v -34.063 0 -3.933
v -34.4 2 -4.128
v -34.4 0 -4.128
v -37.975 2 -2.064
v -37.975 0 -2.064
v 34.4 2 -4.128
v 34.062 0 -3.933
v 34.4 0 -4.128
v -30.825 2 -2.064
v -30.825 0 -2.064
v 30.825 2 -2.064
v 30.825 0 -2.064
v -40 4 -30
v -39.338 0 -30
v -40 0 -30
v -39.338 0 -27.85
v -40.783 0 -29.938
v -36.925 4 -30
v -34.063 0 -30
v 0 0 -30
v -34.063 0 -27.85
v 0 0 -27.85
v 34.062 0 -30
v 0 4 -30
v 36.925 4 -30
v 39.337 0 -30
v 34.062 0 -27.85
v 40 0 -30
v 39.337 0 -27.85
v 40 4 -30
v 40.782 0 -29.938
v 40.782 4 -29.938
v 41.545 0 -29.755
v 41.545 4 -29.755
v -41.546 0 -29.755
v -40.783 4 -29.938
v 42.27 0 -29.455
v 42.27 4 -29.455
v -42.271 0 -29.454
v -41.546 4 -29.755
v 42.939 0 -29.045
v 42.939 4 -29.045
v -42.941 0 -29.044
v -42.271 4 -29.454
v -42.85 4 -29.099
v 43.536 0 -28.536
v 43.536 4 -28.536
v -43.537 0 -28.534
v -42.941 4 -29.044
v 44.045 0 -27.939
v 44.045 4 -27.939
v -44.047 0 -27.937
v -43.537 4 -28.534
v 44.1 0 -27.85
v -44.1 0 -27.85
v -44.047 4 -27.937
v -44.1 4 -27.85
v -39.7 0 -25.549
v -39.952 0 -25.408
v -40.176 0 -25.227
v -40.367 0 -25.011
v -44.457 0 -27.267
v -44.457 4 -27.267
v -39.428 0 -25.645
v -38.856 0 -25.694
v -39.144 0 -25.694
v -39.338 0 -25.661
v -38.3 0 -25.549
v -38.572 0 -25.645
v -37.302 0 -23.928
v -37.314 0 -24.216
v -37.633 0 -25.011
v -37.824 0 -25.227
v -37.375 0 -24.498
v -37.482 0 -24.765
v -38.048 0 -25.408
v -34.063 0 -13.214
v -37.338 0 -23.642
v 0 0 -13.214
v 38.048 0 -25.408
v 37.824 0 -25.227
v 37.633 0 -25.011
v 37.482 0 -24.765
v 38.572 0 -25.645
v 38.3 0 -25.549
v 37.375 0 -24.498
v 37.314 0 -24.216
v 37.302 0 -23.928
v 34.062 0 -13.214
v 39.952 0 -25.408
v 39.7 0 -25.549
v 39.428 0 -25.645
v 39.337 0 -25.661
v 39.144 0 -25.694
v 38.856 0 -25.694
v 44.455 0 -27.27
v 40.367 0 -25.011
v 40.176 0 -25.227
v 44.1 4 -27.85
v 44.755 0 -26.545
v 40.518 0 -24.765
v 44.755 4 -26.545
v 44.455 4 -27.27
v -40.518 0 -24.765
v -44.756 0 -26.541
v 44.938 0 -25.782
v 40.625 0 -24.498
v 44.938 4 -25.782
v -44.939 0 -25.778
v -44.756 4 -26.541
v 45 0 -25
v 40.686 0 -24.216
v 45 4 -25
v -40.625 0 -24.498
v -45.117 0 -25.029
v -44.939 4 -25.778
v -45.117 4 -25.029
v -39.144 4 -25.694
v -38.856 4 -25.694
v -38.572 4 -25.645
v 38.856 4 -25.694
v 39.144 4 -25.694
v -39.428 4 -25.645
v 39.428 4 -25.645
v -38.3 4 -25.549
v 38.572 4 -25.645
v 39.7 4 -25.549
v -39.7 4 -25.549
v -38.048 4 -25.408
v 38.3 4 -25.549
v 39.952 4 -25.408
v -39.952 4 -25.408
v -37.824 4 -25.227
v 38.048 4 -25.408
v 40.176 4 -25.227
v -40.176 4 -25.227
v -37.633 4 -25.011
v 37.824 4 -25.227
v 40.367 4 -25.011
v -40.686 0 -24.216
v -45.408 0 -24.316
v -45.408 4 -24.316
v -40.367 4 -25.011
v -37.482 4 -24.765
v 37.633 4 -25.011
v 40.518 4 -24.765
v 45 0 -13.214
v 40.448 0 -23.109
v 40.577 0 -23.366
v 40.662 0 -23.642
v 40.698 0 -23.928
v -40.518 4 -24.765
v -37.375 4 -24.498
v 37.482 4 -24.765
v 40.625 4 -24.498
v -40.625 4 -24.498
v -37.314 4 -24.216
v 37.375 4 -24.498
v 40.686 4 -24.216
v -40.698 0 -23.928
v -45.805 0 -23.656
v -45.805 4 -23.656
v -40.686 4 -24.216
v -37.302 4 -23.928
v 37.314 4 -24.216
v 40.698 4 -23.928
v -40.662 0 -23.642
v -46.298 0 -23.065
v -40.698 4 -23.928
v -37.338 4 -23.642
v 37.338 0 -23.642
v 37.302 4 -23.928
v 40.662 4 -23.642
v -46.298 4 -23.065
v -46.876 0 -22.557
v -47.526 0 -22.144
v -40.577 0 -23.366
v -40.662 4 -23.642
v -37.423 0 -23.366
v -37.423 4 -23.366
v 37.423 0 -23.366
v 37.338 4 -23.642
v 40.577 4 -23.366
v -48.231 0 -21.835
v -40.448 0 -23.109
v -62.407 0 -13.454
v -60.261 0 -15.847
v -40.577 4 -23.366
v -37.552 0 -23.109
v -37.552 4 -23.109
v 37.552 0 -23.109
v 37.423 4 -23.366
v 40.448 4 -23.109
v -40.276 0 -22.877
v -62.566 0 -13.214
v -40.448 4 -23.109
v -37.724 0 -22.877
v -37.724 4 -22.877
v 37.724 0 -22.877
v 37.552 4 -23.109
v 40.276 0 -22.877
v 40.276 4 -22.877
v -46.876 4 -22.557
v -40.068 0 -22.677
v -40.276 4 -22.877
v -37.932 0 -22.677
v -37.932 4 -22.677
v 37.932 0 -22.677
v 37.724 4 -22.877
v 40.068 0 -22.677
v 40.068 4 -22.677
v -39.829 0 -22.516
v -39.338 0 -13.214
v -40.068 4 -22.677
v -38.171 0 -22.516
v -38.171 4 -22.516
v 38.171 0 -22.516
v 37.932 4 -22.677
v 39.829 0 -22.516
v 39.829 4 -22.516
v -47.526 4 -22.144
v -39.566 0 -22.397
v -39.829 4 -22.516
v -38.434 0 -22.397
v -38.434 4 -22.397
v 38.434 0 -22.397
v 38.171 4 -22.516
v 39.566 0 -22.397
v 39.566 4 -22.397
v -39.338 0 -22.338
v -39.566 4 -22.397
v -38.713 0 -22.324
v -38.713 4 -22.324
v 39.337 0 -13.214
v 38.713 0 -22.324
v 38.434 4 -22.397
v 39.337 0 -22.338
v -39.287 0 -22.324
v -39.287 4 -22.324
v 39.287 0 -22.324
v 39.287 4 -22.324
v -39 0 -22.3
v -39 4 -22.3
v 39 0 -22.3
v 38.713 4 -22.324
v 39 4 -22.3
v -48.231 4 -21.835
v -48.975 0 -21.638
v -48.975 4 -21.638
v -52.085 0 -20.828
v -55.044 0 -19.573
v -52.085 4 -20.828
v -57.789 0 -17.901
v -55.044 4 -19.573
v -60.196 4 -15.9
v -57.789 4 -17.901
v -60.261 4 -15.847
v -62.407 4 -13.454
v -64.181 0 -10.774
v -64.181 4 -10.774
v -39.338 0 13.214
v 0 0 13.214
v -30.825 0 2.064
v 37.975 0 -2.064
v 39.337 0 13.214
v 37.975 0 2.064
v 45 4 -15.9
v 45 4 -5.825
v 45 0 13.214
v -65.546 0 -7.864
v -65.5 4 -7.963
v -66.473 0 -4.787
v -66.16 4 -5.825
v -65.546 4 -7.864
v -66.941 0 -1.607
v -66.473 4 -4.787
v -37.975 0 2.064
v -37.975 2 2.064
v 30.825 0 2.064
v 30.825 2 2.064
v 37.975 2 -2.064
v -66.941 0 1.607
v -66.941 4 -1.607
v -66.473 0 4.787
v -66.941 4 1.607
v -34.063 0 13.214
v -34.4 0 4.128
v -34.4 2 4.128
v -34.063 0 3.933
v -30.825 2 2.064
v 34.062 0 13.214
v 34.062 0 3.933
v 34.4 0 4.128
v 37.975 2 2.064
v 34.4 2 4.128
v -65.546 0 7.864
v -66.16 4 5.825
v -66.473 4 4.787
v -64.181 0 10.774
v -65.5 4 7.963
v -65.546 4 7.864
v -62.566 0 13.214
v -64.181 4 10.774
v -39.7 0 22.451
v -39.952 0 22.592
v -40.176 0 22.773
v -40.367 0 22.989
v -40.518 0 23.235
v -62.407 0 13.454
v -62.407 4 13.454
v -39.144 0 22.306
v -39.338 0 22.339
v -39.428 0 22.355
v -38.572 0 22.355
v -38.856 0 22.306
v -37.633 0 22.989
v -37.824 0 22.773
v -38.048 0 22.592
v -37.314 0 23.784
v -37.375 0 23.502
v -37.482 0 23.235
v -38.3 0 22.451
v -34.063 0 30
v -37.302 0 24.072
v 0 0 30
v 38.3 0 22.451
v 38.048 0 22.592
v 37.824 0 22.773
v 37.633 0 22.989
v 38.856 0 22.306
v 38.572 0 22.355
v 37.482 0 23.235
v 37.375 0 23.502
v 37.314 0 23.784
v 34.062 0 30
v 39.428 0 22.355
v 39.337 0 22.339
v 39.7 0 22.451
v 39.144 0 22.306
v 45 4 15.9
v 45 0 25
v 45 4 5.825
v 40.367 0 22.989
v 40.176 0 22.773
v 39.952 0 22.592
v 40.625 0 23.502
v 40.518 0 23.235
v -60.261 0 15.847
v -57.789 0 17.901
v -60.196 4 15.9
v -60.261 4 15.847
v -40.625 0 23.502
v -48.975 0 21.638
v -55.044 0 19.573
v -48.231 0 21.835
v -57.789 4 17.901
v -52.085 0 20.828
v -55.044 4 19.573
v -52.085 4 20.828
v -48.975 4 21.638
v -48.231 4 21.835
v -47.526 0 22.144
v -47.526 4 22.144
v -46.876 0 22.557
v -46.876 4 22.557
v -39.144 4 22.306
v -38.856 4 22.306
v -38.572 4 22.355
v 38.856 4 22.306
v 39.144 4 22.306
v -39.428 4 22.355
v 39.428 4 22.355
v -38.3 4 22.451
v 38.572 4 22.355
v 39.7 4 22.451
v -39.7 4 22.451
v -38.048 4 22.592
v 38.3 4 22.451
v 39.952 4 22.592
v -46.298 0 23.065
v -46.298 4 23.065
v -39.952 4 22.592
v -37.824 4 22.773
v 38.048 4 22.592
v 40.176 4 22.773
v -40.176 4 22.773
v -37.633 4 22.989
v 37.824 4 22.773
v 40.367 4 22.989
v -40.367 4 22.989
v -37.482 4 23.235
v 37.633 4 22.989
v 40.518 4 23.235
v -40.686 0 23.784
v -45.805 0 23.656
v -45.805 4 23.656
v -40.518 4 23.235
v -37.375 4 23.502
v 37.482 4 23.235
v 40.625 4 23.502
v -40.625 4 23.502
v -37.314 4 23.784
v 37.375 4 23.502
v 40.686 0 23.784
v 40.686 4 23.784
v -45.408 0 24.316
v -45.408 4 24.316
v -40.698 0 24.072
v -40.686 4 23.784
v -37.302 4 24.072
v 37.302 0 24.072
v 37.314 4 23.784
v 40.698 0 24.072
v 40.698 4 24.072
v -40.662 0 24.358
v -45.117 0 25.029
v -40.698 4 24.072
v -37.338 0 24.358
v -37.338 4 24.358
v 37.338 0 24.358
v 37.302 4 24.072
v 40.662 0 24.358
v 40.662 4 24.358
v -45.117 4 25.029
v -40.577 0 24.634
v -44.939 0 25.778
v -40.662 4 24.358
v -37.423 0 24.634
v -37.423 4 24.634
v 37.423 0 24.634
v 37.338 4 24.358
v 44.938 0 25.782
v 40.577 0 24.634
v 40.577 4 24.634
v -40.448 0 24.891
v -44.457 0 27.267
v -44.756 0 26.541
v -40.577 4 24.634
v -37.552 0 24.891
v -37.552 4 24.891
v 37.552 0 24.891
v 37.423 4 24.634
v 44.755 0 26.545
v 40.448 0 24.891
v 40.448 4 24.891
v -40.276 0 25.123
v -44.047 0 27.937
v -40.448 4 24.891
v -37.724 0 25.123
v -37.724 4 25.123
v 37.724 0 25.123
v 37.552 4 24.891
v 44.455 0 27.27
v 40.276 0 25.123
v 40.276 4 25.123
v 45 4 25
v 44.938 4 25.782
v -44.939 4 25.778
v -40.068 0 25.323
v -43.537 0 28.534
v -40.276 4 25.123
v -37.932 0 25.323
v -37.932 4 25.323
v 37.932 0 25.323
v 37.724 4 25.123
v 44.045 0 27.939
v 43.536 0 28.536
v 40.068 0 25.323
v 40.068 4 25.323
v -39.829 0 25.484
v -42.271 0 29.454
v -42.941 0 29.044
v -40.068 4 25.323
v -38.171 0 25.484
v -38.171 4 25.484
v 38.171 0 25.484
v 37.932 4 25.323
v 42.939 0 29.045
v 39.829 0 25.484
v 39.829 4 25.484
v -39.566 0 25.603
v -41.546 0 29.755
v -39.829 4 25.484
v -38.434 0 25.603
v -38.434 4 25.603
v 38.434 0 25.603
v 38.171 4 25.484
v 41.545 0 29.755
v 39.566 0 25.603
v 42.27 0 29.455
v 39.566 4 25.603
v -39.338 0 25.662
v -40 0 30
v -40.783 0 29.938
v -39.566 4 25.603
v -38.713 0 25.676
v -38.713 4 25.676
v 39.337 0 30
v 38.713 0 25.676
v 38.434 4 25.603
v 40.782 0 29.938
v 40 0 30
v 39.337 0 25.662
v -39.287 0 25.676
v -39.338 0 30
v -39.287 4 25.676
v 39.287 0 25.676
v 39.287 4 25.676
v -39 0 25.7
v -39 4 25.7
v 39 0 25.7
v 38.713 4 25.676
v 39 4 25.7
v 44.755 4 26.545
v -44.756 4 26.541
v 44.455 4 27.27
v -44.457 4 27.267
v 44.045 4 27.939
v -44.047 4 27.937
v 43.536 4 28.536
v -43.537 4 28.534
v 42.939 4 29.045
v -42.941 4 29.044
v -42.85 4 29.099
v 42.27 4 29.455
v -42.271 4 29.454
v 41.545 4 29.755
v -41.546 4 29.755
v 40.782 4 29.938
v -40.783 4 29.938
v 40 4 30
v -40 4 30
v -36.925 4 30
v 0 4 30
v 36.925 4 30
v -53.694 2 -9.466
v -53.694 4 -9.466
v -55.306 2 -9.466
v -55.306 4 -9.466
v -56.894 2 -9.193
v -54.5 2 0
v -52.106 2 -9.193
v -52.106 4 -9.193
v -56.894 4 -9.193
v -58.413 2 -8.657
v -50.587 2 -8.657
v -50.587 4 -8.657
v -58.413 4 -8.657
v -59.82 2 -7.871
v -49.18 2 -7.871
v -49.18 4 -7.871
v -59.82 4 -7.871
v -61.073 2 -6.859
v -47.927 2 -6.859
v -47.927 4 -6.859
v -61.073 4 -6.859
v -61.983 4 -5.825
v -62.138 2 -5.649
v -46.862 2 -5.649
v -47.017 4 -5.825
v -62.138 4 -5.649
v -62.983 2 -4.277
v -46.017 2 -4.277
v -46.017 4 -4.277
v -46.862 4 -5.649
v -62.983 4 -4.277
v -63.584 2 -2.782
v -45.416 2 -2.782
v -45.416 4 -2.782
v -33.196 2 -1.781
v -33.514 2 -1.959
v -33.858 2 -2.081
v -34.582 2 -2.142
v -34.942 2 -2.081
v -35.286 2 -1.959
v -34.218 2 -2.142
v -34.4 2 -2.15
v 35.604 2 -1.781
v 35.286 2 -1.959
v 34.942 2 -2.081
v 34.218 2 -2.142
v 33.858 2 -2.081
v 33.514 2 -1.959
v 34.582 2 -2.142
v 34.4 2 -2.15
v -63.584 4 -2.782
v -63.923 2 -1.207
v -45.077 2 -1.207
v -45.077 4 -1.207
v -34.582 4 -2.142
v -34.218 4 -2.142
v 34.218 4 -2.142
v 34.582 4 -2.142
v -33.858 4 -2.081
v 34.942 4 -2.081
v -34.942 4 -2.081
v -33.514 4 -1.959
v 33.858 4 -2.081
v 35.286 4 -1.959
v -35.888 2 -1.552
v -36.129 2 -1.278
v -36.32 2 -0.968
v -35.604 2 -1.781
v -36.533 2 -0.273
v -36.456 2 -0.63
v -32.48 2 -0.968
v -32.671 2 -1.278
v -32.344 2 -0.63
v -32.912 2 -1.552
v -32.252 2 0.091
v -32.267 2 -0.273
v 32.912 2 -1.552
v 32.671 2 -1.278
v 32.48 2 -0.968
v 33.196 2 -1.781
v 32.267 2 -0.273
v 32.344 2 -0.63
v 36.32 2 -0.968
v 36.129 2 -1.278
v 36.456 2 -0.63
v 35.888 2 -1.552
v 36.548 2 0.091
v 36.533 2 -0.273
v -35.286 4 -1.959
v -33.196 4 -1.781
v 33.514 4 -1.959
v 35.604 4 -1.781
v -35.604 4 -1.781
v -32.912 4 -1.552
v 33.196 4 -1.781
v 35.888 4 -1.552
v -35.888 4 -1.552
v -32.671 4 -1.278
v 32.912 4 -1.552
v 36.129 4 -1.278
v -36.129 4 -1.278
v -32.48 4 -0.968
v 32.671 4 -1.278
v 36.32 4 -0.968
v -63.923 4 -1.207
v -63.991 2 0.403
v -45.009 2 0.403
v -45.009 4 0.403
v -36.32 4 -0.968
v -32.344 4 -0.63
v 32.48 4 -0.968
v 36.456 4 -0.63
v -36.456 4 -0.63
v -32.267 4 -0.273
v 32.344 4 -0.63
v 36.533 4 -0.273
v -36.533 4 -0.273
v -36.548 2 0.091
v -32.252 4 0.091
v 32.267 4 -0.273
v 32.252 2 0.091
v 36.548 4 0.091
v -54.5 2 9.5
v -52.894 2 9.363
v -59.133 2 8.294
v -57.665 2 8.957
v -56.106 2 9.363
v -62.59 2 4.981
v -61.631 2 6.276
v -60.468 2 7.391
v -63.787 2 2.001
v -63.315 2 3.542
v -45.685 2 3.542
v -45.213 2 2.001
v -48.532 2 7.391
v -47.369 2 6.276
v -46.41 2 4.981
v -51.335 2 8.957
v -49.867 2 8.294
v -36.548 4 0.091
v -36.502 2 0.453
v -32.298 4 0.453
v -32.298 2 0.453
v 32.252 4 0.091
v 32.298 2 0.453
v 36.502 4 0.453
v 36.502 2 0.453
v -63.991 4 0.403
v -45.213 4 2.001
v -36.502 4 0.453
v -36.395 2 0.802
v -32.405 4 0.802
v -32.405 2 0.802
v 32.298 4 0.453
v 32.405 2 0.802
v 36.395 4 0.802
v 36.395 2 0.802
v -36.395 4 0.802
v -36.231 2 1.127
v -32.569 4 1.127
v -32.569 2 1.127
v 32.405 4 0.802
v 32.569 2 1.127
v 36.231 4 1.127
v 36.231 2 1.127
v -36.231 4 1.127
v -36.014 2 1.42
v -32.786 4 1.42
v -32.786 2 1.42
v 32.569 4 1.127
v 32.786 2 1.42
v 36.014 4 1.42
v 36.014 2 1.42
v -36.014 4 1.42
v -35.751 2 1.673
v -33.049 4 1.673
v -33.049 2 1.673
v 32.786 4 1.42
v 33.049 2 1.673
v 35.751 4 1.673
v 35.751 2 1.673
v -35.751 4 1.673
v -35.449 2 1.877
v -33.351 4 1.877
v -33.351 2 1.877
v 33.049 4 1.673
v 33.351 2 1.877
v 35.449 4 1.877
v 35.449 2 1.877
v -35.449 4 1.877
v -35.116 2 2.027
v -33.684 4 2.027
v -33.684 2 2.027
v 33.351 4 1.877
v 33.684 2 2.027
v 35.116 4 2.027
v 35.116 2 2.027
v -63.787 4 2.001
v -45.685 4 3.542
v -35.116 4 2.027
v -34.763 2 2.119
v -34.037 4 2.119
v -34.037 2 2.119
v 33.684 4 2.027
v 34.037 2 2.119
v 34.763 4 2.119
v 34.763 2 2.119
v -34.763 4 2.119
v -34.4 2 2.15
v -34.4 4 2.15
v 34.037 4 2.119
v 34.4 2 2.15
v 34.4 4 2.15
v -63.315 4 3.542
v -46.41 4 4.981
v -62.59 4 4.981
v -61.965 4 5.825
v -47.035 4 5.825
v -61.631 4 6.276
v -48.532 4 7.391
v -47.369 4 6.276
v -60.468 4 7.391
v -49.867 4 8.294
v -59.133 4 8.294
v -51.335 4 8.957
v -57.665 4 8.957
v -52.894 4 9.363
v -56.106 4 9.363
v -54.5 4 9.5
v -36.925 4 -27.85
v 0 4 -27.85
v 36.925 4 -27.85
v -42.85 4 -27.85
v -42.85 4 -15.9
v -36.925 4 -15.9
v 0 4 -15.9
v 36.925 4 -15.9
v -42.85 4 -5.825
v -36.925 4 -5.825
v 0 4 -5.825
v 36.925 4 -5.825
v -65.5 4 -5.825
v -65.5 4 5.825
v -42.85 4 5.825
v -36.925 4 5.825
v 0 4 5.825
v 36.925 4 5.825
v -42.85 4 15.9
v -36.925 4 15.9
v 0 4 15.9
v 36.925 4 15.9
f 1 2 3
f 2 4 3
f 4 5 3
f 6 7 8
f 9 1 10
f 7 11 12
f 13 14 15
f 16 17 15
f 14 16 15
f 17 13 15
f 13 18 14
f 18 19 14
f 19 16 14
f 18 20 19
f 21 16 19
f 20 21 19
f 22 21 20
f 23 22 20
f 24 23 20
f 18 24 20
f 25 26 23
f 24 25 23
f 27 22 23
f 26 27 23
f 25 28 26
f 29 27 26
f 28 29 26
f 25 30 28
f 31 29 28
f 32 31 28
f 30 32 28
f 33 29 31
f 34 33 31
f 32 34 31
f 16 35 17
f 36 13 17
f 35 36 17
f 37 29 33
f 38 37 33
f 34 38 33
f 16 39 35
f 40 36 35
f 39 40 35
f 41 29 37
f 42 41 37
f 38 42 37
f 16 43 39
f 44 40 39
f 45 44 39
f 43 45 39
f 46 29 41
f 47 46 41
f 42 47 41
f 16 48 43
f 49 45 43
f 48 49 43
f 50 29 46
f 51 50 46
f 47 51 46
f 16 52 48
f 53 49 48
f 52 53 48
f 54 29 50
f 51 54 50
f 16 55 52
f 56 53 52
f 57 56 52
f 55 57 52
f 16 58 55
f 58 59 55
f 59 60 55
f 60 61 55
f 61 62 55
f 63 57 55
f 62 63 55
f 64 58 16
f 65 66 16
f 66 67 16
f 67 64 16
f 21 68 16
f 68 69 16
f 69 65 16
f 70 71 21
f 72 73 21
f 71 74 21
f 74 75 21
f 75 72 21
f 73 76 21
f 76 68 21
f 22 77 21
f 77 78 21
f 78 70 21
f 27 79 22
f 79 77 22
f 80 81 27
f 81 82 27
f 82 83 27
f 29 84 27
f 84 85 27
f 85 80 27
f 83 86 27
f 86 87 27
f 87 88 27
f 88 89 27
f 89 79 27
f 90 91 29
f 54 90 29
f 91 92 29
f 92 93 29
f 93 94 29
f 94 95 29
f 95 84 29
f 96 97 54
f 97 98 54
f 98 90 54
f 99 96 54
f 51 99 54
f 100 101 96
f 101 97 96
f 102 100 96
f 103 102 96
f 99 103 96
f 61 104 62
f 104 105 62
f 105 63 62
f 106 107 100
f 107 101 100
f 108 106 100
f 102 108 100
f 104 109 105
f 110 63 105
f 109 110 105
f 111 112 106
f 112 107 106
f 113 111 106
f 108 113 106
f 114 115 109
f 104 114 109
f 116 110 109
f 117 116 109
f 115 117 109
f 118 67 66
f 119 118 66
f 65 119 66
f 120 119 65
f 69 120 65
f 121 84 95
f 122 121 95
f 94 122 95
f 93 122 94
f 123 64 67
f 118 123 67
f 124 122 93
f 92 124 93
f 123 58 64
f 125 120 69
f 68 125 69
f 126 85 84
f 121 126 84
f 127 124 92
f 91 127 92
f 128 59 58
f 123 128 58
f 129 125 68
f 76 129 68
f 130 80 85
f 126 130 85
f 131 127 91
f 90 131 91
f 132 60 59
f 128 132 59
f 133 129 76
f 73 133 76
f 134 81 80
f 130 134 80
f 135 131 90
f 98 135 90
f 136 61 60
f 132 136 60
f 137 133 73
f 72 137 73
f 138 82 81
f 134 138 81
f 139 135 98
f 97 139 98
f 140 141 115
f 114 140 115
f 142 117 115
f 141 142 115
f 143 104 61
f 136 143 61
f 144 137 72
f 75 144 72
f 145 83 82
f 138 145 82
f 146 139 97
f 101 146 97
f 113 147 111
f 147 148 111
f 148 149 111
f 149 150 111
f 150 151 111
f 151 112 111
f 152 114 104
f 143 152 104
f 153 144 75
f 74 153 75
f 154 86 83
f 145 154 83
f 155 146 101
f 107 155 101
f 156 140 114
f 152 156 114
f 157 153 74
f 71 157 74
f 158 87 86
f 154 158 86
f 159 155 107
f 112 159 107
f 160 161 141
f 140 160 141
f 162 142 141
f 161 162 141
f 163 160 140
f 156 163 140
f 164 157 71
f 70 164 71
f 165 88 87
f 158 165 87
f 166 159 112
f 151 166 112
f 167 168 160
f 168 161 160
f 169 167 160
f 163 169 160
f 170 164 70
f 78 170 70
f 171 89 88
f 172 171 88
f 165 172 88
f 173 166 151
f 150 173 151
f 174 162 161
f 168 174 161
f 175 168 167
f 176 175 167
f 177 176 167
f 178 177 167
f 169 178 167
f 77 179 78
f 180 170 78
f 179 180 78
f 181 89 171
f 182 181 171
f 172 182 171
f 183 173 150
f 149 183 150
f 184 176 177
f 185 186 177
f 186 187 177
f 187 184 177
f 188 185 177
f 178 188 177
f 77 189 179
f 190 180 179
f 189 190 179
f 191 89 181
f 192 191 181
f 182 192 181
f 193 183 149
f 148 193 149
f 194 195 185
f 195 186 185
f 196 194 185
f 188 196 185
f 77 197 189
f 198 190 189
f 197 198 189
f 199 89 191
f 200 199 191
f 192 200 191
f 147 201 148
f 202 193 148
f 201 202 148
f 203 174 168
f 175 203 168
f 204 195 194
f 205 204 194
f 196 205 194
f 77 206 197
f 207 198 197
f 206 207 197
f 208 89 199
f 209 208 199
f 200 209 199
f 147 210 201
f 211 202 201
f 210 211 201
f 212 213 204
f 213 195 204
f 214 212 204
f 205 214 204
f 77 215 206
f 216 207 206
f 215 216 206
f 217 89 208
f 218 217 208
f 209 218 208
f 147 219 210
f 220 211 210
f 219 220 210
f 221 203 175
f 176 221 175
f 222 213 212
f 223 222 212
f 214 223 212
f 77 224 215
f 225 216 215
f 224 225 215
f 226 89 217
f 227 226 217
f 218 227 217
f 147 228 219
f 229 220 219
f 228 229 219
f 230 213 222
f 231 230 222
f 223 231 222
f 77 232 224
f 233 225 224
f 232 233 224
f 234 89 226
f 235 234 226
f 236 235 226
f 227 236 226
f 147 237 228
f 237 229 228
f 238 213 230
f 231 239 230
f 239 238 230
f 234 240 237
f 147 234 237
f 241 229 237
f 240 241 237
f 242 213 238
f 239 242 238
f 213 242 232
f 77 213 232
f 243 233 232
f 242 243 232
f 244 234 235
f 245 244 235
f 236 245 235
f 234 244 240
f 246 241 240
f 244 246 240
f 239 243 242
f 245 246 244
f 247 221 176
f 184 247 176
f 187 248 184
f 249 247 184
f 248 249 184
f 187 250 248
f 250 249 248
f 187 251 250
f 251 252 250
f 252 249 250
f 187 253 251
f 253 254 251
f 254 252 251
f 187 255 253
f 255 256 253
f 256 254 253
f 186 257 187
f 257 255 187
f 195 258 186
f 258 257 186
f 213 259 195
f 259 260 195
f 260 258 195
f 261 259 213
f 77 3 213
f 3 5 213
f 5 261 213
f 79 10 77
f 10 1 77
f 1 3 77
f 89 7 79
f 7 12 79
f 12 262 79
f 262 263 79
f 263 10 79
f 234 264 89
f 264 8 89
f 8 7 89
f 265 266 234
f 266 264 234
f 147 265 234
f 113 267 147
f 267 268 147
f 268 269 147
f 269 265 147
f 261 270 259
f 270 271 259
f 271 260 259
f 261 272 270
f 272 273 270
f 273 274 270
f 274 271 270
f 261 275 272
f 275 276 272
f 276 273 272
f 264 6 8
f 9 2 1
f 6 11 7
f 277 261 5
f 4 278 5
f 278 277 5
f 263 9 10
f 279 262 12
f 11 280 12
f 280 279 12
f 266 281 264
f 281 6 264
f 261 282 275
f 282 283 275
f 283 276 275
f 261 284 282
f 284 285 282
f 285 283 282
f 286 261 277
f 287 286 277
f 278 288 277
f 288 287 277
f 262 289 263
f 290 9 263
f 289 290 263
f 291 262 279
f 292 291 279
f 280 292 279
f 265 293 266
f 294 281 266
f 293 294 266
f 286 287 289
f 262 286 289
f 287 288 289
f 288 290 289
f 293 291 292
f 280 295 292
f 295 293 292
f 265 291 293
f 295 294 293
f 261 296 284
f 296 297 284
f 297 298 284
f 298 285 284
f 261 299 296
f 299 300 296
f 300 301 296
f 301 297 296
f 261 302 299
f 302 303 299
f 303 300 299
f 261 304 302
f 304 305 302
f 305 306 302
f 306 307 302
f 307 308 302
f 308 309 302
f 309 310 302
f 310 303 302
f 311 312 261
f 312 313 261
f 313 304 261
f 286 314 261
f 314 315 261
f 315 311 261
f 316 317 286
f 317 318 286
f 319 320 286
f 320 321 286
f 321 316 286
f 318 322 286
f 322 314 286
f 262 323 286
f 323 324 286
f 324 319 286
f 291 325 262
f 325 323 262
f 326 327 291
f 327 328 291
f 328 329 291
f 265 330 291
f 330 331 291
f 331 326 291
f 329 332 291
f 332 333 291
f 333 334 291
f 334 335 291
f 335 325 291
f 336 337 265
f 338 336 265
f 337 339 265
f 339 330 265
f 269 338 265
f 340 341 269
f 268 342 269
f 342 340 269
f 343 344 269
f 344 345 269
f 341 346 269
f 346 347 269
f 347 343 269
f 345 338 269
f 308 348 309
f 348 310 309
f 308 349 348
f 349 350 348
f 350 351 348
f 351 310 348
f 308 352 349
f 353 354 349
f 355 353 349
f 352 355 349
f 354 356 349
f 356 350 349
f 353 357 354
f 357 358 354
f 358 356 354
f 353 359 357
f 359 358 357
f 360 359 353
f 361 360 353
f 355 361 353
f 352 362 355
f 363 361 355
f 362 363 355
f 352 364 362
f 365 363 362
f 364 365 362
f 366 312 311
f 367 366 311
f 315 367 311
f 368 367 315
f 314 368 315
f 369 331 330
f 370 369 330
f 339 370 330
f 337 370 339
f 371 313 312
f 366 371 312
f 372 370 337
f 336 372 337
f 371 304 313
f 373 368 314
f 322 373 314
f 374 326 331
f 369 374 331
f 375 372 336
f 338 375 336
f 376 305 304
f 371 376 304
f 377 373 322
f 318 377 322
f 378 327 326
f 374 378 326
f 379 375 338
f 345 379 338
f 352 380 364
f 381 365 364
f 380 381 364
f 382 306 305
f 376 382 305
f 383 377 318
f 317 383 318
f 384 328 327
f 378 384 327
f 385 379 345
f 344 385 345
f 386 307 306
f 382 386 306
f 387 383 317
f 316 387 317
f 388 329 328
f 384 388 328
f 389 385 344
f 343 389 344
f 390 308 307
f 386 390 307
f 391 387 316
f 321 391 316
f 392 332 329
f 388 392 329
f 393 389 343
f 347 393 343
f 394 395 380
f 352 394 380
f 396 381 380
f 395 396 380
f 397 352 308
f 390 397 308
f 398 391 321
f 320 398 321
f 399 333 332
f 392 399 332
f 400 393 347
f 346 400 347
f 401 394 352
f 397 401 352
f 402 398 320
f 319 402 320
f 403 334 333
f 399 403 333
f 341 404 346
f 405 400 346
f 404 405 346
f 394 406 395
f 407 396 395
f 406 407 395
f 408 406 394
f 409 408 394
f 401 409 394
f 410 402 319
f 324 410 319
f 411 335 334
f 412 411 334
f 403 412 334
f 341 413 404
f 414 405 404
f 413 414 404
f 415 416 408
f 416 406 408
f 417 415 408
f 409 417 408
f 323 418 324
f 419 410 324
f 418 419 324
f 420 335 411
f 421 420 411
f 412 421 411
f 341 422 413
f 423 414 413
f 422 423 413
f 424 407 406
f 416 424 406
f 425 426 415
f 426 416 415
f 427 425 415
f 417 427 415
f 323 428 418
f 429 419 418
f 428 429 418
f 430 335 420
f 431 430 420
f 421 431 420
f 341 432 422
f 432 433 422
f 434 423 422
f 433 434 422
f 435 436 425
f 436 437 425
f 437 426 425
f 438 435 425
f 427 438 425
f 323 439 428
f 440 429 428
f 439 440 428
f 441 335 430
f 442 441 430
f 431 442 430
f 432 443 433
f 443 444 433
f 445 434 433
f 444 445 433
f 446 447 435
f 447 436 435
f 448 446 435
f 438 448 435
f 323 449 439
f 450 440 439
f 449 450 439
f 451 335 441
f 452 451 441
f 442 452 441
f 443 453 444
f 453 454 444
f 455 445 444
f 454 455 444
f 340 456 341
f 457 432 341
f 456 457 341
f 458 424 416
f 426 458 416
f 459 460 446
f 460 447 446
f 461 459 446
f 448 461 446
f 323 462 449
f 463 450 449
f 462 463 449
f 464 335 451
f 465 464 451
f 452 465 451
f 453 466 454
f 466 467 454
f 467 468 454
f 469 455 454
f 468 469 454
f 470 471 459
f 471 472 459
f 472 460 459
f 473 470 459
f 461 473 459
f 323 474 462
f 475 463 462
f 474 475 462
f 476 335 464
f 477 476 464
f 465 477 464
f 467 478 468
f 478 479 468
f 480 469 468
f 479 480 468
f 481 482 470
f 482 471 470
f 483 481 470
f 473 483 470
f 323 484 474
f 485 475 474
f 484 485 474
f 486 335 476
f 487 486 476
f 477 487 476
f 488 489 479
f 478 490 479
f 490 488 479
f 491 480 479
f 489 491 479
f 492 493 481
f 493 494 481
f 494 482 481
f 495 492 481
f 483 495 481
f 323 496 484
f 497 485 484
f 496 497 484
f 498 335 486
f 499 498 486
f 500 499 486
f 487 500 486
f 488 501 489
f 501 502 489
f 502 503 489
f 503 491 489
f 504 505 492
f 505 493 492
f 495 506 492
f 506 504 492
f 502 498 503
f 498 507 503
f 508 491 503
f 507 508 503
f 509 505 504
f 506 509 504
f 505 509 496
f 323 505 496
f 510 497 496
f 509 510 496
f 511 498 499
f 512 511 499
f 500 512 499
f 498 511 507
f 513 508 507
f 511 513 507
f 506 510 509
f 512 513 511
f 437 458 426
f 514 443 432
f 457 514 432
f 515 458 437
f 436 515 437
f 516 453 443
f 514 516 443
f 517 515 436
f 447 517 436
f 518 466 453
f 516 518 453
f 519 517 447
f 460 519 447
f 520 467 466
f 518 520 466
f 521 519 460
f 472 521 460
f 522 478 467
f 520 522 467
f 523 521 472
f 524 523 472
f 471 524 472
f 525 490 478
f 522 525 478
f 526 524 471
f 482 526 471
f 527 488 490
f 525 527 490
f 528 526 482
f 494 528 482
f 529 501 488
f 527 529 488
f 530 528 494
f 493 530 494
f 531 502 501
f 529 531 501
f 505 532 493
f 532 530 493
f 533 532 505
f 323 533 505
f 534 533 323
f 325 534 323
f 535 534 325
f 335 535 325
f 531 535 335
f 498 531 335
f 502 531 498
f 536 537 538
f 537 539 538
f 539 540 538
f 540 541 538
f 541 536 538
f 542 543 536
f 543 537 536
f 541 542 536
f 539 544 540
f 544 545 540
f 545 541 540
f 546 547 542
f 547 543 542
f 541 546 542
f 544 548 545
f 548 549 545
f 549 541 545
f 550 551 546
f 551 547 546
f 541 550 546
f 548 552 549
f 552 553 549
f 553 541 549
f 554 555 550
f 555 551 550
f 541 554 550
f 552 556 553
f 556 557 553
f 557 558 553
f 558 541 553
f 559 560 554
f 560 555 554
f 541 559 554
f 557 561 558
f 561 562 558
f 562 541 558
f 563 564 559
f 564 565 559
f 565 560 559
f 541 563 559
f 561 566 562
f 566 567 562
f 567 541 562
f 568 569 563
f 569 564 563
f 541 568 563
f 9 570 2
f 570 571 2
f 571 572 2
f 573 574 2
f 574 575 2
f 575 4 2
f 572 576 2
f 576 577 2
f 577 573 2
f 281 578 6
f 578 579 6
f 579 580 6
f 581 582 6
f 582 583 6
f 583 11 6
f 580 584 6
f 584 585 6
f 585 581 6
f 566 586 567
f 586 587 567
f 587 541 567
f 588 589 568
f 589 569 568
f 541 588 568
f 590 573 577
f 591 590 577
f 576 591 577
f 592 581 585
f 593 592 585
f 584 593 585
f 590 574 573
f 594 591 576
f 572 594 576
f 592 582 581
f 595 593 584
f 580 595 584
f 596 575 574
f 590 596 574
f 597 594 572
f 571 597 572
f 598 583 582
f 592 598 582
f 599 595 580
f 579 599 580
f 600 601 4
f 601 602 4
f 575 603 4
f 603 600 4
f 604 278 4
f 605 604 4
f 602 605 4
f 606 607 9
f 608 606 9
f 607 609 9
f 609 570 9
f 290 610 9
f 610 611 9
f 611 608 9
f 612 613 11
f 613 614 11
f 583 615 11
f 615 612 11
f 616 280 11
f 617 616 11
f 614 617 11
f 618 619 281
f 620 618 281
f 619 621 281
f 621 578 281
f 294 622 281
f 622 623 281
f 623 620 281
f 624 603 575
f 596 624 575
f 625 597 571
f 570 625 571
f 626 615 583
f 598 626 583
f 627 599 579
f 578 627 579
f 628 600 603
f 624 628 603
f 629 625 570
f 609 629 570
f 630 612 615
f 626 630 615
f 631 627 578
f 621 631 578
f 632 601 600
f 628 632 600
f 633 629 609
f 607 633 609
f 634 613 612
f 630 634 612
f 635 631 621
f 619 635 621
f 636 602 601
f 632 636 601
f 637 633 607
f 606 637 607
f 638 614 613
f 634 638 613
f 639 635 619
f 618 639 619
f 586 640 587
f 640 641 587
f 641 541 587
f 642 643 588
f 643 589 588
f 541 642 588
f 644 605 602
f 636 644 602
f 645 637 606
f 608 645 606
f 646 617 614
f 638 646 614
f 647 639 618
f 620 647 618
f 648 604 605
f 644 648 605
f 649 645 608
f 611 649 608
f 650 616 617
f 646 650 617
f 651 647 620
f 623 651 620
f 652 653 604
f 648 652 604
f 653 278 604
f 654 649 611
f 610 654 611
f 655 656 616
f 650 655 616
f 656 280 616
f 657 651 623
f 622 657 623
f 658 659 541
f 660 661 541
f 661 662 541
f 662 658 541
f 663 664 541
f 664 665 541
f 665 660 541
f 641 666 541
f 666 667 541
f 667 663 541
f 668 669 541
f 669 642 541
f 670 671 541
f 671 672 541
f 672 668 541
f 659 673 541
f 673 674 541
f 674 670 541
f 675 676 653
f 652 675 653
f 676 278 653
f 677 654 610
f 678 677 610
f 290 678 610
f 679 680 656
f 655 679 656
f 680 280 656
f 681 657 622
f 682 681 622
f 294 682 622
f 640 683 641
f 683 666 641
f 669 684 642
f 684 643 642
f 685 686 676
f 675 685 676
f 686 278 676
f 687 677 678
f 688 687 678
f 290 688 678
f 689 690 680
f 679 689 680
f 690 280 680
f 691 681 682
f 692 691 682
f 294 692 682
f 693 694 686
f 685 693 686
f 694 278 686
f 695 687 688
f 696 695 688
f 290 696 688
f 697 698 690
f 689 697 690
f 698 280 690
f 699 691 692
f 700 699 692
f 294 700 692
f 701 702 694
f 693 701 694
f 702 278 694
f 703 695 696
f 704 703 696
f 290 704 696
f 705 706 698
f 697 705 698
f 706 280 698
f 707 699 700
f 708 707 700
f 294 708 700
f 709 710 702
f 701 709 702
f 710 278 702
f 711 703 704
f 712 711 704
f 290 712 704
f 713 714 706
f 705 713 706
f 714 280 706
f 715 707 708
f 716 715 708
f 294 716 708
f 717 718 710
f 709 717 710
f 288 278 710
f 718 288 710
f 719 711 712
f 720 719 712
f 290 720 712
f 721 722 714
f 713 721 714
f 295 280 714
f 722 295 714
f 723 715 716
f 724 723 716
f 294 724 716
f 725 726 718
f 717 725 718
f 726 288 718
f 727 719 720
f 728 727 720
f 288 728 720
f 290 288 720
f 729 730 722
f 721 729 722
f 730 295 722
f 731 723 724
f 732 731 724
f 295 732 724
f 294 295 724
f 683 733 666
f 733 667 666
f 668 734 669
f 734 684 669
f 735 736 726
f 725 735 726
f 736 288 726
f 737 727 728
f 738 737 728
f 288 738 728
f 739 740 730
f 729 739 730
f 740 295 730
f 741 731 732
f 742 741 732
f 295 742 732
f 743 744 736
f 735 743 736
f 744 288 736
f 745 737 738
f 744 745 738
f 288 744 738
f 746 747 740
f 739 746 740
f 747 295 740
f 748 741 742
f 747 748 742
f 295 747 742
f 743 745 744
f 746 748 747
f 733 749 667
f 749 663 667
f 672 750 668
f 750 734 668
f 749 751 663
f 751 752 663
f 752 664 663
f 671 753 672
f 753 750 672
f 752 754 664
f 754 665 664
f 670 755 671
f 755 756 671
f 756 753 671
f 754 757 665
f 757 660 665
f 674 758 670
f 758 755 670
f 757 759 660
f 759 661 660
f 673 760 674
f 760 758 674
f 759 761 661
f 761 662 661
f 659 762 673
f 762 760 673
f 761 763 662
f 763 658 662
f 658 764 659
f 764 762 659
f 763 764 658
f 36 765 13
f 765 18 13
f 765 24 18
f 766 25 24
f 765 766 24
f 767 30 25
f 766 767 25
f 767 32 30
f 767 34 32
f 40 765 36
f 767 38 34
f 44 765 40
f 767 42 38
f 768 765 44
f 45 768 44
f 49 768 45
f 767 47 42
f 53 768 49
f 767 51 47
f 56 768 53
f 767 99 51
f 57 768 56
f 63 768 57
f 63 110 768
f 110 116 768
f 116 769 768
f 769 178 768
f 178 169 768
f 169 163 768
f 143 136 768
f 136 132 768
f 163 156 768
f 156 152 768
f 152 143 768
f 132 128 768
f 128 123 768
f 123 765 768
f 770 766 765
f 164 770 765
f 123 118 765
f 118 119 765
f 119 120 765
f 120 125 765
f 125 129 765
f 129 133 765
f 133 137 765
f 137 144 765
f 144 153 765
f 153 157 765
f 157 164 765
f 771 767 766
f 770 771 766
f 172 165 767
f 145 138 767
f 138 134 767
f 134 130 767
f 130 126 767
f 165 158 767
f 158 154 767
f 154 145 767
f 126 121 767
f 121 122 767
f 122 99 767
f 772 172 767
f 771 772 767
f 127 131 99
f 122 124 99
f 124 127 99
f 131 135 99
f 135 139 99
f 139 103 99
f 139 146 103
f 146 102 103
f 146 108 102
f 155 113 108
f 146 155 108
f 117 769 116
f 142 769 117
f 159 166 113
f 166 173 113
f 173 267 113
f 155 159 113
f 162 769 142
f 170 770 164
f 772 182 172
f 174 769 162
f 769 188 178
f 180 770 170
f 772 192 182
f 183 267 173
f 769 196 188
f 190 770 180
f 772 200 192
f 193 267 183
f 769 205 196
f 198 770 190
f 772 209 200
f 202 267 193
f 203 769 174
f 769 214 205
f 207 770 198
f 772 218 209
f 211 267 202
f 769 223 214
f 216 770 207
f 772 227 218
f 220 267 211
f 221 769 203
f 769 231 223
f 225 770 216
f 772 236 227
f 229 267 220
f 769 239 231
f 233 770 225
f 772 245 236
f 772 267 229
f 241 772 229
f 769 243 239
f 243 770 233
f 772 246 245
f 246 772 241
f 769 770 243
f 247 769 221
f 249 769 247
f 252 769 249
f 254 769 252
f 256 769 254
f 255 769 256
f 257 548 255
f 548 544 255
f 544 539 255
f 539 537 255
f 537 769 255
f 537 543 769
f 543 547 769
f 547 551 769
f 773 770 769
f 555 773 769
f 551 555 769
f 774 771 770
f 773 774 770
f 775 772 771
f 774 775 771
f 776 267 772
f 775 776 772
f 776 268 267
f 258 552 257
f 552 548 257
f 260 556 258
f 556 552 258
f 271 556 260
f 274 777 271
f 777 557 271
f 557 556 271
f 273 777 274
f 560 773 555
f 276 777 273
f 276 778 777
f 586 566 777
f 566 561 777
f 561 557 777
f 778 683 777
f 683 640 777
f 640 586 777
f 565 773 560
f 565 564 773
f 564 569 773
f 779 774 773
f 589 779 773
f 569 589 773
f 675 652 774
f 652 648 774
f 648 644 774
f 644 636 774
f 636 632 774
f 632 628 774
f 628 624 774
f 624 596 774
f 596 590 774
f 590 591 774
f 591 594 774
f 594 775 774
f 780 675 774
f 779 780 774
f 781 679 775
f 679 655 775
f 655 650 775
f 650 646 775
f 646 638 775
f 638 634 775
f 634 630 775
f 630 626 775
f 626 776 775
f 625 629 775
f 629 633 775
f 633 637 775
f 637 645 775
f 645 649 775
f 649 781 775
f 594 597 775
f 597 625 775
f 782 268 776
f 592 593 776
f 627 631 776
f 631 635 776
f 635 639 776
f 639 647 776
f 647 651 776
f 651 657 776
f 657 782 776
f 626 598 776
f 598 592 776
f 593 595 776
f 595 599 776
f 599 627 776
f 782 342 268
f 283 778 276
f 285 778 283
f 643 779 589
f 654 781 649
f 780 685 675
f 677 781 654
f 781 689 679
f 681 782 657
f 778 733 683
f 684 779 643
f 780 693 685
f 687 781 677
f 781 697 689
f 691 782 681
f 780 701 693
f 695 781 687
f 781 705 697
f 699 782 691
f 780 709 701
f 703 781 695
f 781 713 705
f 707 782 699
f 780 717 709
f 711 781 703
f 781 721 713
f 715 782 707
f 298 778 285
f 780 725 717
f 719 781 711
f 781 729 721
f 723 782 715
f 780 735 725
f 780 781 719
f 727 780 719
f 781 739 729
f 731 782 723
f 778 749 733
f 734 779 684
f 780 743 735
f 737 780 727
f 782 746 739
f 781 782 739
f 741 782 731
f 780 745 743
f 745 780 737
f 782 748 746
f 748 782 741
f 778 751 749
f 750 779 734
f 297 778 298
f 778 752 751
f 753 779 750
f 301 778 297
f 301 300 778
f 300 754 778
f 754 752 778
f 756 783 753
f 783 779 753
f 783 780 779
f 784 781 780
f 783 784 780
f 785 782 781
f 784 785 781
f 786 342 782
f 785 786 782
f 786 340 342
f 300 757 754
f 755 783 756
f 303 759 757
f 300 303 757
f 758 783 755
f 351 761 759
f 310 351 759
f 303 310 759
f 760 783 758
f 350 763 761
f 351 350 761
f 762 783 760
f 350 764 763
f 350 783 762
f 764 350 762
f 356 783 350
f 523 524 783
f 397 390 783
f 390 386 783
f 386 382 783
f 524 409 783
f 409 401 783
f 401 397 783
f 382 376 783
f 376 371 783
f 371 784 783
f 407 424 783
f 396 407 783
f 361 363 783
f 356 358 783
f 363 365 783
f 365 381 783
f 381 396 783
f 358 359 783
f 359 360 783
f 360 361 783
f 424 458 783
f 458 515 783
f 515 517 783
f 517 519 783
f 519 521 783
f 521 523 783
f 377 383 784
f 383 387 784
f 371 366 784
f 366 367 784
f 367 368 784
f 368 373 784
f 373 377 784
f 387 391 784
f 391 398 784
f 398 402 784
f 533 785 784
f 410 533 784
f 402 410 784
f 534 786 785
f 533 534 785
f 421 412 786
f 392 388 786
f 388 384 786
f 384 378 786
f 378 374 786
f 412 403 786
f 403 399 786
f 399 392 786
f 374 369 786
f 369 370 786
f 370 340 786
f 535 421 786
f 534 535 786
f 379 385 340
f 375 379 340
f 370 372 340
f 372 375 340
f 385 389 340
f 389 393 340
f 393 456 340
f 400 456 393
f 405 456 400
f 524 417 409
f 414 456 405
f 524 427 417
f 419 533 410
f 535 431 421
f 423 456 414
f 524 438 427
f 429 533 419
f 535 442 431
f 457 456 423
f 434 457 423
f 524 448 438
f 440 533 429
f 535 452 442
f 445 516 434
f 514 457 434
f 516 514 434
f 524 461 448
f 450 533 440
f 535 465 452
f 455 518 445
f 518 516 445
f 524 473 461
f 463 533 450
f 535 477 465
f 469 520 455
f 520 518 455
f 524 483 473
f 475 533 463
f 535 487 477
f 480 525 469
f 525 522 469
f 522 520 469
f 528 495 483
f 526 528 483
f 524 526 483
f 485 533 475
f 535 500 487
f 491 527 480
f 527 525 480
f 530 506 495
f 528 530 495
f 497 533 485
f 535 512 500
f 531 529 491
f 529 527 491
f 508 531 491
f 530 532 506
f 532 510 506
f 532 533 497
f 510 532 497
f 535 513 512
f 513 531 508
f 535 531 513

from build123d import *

# Parameters (mm, degrees)
SKETCH1_W           = 90
SKETCH1_H           = 60
BOSS_EXTRUDE1_DEPTH = 4
SKETCH2_R           = 1.7
SKETCH2_R_2         = 2.15
CUT_EXTRUDE1_DEPTH  = 4
CUT_EXTRUDE2_DEPTH  = 2
BOSS_EXTRUDE2_DEPTH = 4
SKETCH5_R           = 9.5
CUT_EXTRUDE3_DEPTH  = 2
FILLET3_R           = 5
FILLET4_R           = 5


with BuildPart() as part:
    # Sketch1 → Boss-Extrude1 (new body)
    with BuildSketch(Plane(origin=(0, 0, 0), x_dir=(1, 0, 0), z_dir=(0, 1, 0))):
        Rectangle(SKETCH1_W, SKETCH1_H)
    extrude(amount=BOSS_EXTRUDE1_DEPTH)

    # Sketch2 → Cut-Extrude1 (cut)
    with BuildSketch(Plane(origin=(0, 4, 0), x_dir=(1, 0, 0), z_dir=(0, 1, 0))):
        with Locations(Location((-39, 24, 0), (0, 0, 270))):
            Circle(SKETCH2_R)
        with Locations(Location((-39, -24, 0), (0, 0, 270))):
            Circle(SKETCH2_R)
        with Locations(Location((39, -24, 0), (0, 0, 270))):
            Circle(SKETCH2_R)
        with Locations(Location((39, 24, 0), (0, 0, 270))):
            Circle(SKETCH2_R)
        with Locations(Location((-34.4, 0, 0), (0, 0, 270))):
            Circle(SKETCH2_R_2)
        with Locations(Location((34.4, 0, 0), (0, 0, 270))):
            Circle(SKETCH2_R_2)
    extrude(amount=-CUT_EXTRUDE1_DEPTH, mode=Mode.SUBTRACT)

    # Sketch3 → Cut-Extrude2 (cut)
    with BuildSketch(Plane.XZ):
        Polygon((-30.825, 2.064027212), (-34.4, 4.128054425), (-37.975, 2.064027212), (-37.975, -2.064027212), (-34.4, -4.128054425), (-30.825, -2.064027212), align=None)
        Polygon((37.975, 2.064027212), (34.4, 4.128054425), (30.825, 2.064027212), (30.825, -2.064027212), (34.4, -4.128054425), (37.975, -2.064027212), align=None)
    extrude(amount=-CUT_EXTRUDE2_DEPTH, mode=Mode.SUBTRACT)

    # Sketch4 → Boss-Extrude2 (add)
    with BuildSketch(Plane(origin=(0, 4, 0), x_dir=(1, 0, 0), z_dir=(0, 1, 0))):
        with BuildLine():
            Line((-45, 22), (-45, -22))
            ThreePointArc((-45, -22), (-67, 0), (-45, 22))
        make_face()
    extrude(amount=-BOSS_EXTRUDE2_DEPTH)

    # Sketch5 → Cut-Extrude3 (cut)
    with BuildSketch(Plane(origin=(0, 4, 0), x_dir=(1, 0, 0), z_dir=(0, 1, 0))):
        with Locations(Location((-54.5, 0, 0), (0, 0, 270))):
            Circle(SKETCH5_R)
    extrude(amount=-CUT_EXTRUDE3_DEPTH, mode=Mode.SUBTRACT)

    # Fillet3
    fillet3_edges = [part.edges().sort_by_distance(p)[0] for p in [
        (-45, 2, -30),
        (45, 2, -30),
        (45, 2, 30),
        (-45, 2, 30),
    ]]
    fillet(fillet3_edges, radius=FILLET3_R)

    # Fillet4
    fillet4_edges = [part.edges().sort_by_distance(p)[0] for p in [
        (-45, 2, -22),
        (-45, 2, 22),
    ]]
    fillet(fillet4_edges, radius=FILLET4_R)


solid = part.part
